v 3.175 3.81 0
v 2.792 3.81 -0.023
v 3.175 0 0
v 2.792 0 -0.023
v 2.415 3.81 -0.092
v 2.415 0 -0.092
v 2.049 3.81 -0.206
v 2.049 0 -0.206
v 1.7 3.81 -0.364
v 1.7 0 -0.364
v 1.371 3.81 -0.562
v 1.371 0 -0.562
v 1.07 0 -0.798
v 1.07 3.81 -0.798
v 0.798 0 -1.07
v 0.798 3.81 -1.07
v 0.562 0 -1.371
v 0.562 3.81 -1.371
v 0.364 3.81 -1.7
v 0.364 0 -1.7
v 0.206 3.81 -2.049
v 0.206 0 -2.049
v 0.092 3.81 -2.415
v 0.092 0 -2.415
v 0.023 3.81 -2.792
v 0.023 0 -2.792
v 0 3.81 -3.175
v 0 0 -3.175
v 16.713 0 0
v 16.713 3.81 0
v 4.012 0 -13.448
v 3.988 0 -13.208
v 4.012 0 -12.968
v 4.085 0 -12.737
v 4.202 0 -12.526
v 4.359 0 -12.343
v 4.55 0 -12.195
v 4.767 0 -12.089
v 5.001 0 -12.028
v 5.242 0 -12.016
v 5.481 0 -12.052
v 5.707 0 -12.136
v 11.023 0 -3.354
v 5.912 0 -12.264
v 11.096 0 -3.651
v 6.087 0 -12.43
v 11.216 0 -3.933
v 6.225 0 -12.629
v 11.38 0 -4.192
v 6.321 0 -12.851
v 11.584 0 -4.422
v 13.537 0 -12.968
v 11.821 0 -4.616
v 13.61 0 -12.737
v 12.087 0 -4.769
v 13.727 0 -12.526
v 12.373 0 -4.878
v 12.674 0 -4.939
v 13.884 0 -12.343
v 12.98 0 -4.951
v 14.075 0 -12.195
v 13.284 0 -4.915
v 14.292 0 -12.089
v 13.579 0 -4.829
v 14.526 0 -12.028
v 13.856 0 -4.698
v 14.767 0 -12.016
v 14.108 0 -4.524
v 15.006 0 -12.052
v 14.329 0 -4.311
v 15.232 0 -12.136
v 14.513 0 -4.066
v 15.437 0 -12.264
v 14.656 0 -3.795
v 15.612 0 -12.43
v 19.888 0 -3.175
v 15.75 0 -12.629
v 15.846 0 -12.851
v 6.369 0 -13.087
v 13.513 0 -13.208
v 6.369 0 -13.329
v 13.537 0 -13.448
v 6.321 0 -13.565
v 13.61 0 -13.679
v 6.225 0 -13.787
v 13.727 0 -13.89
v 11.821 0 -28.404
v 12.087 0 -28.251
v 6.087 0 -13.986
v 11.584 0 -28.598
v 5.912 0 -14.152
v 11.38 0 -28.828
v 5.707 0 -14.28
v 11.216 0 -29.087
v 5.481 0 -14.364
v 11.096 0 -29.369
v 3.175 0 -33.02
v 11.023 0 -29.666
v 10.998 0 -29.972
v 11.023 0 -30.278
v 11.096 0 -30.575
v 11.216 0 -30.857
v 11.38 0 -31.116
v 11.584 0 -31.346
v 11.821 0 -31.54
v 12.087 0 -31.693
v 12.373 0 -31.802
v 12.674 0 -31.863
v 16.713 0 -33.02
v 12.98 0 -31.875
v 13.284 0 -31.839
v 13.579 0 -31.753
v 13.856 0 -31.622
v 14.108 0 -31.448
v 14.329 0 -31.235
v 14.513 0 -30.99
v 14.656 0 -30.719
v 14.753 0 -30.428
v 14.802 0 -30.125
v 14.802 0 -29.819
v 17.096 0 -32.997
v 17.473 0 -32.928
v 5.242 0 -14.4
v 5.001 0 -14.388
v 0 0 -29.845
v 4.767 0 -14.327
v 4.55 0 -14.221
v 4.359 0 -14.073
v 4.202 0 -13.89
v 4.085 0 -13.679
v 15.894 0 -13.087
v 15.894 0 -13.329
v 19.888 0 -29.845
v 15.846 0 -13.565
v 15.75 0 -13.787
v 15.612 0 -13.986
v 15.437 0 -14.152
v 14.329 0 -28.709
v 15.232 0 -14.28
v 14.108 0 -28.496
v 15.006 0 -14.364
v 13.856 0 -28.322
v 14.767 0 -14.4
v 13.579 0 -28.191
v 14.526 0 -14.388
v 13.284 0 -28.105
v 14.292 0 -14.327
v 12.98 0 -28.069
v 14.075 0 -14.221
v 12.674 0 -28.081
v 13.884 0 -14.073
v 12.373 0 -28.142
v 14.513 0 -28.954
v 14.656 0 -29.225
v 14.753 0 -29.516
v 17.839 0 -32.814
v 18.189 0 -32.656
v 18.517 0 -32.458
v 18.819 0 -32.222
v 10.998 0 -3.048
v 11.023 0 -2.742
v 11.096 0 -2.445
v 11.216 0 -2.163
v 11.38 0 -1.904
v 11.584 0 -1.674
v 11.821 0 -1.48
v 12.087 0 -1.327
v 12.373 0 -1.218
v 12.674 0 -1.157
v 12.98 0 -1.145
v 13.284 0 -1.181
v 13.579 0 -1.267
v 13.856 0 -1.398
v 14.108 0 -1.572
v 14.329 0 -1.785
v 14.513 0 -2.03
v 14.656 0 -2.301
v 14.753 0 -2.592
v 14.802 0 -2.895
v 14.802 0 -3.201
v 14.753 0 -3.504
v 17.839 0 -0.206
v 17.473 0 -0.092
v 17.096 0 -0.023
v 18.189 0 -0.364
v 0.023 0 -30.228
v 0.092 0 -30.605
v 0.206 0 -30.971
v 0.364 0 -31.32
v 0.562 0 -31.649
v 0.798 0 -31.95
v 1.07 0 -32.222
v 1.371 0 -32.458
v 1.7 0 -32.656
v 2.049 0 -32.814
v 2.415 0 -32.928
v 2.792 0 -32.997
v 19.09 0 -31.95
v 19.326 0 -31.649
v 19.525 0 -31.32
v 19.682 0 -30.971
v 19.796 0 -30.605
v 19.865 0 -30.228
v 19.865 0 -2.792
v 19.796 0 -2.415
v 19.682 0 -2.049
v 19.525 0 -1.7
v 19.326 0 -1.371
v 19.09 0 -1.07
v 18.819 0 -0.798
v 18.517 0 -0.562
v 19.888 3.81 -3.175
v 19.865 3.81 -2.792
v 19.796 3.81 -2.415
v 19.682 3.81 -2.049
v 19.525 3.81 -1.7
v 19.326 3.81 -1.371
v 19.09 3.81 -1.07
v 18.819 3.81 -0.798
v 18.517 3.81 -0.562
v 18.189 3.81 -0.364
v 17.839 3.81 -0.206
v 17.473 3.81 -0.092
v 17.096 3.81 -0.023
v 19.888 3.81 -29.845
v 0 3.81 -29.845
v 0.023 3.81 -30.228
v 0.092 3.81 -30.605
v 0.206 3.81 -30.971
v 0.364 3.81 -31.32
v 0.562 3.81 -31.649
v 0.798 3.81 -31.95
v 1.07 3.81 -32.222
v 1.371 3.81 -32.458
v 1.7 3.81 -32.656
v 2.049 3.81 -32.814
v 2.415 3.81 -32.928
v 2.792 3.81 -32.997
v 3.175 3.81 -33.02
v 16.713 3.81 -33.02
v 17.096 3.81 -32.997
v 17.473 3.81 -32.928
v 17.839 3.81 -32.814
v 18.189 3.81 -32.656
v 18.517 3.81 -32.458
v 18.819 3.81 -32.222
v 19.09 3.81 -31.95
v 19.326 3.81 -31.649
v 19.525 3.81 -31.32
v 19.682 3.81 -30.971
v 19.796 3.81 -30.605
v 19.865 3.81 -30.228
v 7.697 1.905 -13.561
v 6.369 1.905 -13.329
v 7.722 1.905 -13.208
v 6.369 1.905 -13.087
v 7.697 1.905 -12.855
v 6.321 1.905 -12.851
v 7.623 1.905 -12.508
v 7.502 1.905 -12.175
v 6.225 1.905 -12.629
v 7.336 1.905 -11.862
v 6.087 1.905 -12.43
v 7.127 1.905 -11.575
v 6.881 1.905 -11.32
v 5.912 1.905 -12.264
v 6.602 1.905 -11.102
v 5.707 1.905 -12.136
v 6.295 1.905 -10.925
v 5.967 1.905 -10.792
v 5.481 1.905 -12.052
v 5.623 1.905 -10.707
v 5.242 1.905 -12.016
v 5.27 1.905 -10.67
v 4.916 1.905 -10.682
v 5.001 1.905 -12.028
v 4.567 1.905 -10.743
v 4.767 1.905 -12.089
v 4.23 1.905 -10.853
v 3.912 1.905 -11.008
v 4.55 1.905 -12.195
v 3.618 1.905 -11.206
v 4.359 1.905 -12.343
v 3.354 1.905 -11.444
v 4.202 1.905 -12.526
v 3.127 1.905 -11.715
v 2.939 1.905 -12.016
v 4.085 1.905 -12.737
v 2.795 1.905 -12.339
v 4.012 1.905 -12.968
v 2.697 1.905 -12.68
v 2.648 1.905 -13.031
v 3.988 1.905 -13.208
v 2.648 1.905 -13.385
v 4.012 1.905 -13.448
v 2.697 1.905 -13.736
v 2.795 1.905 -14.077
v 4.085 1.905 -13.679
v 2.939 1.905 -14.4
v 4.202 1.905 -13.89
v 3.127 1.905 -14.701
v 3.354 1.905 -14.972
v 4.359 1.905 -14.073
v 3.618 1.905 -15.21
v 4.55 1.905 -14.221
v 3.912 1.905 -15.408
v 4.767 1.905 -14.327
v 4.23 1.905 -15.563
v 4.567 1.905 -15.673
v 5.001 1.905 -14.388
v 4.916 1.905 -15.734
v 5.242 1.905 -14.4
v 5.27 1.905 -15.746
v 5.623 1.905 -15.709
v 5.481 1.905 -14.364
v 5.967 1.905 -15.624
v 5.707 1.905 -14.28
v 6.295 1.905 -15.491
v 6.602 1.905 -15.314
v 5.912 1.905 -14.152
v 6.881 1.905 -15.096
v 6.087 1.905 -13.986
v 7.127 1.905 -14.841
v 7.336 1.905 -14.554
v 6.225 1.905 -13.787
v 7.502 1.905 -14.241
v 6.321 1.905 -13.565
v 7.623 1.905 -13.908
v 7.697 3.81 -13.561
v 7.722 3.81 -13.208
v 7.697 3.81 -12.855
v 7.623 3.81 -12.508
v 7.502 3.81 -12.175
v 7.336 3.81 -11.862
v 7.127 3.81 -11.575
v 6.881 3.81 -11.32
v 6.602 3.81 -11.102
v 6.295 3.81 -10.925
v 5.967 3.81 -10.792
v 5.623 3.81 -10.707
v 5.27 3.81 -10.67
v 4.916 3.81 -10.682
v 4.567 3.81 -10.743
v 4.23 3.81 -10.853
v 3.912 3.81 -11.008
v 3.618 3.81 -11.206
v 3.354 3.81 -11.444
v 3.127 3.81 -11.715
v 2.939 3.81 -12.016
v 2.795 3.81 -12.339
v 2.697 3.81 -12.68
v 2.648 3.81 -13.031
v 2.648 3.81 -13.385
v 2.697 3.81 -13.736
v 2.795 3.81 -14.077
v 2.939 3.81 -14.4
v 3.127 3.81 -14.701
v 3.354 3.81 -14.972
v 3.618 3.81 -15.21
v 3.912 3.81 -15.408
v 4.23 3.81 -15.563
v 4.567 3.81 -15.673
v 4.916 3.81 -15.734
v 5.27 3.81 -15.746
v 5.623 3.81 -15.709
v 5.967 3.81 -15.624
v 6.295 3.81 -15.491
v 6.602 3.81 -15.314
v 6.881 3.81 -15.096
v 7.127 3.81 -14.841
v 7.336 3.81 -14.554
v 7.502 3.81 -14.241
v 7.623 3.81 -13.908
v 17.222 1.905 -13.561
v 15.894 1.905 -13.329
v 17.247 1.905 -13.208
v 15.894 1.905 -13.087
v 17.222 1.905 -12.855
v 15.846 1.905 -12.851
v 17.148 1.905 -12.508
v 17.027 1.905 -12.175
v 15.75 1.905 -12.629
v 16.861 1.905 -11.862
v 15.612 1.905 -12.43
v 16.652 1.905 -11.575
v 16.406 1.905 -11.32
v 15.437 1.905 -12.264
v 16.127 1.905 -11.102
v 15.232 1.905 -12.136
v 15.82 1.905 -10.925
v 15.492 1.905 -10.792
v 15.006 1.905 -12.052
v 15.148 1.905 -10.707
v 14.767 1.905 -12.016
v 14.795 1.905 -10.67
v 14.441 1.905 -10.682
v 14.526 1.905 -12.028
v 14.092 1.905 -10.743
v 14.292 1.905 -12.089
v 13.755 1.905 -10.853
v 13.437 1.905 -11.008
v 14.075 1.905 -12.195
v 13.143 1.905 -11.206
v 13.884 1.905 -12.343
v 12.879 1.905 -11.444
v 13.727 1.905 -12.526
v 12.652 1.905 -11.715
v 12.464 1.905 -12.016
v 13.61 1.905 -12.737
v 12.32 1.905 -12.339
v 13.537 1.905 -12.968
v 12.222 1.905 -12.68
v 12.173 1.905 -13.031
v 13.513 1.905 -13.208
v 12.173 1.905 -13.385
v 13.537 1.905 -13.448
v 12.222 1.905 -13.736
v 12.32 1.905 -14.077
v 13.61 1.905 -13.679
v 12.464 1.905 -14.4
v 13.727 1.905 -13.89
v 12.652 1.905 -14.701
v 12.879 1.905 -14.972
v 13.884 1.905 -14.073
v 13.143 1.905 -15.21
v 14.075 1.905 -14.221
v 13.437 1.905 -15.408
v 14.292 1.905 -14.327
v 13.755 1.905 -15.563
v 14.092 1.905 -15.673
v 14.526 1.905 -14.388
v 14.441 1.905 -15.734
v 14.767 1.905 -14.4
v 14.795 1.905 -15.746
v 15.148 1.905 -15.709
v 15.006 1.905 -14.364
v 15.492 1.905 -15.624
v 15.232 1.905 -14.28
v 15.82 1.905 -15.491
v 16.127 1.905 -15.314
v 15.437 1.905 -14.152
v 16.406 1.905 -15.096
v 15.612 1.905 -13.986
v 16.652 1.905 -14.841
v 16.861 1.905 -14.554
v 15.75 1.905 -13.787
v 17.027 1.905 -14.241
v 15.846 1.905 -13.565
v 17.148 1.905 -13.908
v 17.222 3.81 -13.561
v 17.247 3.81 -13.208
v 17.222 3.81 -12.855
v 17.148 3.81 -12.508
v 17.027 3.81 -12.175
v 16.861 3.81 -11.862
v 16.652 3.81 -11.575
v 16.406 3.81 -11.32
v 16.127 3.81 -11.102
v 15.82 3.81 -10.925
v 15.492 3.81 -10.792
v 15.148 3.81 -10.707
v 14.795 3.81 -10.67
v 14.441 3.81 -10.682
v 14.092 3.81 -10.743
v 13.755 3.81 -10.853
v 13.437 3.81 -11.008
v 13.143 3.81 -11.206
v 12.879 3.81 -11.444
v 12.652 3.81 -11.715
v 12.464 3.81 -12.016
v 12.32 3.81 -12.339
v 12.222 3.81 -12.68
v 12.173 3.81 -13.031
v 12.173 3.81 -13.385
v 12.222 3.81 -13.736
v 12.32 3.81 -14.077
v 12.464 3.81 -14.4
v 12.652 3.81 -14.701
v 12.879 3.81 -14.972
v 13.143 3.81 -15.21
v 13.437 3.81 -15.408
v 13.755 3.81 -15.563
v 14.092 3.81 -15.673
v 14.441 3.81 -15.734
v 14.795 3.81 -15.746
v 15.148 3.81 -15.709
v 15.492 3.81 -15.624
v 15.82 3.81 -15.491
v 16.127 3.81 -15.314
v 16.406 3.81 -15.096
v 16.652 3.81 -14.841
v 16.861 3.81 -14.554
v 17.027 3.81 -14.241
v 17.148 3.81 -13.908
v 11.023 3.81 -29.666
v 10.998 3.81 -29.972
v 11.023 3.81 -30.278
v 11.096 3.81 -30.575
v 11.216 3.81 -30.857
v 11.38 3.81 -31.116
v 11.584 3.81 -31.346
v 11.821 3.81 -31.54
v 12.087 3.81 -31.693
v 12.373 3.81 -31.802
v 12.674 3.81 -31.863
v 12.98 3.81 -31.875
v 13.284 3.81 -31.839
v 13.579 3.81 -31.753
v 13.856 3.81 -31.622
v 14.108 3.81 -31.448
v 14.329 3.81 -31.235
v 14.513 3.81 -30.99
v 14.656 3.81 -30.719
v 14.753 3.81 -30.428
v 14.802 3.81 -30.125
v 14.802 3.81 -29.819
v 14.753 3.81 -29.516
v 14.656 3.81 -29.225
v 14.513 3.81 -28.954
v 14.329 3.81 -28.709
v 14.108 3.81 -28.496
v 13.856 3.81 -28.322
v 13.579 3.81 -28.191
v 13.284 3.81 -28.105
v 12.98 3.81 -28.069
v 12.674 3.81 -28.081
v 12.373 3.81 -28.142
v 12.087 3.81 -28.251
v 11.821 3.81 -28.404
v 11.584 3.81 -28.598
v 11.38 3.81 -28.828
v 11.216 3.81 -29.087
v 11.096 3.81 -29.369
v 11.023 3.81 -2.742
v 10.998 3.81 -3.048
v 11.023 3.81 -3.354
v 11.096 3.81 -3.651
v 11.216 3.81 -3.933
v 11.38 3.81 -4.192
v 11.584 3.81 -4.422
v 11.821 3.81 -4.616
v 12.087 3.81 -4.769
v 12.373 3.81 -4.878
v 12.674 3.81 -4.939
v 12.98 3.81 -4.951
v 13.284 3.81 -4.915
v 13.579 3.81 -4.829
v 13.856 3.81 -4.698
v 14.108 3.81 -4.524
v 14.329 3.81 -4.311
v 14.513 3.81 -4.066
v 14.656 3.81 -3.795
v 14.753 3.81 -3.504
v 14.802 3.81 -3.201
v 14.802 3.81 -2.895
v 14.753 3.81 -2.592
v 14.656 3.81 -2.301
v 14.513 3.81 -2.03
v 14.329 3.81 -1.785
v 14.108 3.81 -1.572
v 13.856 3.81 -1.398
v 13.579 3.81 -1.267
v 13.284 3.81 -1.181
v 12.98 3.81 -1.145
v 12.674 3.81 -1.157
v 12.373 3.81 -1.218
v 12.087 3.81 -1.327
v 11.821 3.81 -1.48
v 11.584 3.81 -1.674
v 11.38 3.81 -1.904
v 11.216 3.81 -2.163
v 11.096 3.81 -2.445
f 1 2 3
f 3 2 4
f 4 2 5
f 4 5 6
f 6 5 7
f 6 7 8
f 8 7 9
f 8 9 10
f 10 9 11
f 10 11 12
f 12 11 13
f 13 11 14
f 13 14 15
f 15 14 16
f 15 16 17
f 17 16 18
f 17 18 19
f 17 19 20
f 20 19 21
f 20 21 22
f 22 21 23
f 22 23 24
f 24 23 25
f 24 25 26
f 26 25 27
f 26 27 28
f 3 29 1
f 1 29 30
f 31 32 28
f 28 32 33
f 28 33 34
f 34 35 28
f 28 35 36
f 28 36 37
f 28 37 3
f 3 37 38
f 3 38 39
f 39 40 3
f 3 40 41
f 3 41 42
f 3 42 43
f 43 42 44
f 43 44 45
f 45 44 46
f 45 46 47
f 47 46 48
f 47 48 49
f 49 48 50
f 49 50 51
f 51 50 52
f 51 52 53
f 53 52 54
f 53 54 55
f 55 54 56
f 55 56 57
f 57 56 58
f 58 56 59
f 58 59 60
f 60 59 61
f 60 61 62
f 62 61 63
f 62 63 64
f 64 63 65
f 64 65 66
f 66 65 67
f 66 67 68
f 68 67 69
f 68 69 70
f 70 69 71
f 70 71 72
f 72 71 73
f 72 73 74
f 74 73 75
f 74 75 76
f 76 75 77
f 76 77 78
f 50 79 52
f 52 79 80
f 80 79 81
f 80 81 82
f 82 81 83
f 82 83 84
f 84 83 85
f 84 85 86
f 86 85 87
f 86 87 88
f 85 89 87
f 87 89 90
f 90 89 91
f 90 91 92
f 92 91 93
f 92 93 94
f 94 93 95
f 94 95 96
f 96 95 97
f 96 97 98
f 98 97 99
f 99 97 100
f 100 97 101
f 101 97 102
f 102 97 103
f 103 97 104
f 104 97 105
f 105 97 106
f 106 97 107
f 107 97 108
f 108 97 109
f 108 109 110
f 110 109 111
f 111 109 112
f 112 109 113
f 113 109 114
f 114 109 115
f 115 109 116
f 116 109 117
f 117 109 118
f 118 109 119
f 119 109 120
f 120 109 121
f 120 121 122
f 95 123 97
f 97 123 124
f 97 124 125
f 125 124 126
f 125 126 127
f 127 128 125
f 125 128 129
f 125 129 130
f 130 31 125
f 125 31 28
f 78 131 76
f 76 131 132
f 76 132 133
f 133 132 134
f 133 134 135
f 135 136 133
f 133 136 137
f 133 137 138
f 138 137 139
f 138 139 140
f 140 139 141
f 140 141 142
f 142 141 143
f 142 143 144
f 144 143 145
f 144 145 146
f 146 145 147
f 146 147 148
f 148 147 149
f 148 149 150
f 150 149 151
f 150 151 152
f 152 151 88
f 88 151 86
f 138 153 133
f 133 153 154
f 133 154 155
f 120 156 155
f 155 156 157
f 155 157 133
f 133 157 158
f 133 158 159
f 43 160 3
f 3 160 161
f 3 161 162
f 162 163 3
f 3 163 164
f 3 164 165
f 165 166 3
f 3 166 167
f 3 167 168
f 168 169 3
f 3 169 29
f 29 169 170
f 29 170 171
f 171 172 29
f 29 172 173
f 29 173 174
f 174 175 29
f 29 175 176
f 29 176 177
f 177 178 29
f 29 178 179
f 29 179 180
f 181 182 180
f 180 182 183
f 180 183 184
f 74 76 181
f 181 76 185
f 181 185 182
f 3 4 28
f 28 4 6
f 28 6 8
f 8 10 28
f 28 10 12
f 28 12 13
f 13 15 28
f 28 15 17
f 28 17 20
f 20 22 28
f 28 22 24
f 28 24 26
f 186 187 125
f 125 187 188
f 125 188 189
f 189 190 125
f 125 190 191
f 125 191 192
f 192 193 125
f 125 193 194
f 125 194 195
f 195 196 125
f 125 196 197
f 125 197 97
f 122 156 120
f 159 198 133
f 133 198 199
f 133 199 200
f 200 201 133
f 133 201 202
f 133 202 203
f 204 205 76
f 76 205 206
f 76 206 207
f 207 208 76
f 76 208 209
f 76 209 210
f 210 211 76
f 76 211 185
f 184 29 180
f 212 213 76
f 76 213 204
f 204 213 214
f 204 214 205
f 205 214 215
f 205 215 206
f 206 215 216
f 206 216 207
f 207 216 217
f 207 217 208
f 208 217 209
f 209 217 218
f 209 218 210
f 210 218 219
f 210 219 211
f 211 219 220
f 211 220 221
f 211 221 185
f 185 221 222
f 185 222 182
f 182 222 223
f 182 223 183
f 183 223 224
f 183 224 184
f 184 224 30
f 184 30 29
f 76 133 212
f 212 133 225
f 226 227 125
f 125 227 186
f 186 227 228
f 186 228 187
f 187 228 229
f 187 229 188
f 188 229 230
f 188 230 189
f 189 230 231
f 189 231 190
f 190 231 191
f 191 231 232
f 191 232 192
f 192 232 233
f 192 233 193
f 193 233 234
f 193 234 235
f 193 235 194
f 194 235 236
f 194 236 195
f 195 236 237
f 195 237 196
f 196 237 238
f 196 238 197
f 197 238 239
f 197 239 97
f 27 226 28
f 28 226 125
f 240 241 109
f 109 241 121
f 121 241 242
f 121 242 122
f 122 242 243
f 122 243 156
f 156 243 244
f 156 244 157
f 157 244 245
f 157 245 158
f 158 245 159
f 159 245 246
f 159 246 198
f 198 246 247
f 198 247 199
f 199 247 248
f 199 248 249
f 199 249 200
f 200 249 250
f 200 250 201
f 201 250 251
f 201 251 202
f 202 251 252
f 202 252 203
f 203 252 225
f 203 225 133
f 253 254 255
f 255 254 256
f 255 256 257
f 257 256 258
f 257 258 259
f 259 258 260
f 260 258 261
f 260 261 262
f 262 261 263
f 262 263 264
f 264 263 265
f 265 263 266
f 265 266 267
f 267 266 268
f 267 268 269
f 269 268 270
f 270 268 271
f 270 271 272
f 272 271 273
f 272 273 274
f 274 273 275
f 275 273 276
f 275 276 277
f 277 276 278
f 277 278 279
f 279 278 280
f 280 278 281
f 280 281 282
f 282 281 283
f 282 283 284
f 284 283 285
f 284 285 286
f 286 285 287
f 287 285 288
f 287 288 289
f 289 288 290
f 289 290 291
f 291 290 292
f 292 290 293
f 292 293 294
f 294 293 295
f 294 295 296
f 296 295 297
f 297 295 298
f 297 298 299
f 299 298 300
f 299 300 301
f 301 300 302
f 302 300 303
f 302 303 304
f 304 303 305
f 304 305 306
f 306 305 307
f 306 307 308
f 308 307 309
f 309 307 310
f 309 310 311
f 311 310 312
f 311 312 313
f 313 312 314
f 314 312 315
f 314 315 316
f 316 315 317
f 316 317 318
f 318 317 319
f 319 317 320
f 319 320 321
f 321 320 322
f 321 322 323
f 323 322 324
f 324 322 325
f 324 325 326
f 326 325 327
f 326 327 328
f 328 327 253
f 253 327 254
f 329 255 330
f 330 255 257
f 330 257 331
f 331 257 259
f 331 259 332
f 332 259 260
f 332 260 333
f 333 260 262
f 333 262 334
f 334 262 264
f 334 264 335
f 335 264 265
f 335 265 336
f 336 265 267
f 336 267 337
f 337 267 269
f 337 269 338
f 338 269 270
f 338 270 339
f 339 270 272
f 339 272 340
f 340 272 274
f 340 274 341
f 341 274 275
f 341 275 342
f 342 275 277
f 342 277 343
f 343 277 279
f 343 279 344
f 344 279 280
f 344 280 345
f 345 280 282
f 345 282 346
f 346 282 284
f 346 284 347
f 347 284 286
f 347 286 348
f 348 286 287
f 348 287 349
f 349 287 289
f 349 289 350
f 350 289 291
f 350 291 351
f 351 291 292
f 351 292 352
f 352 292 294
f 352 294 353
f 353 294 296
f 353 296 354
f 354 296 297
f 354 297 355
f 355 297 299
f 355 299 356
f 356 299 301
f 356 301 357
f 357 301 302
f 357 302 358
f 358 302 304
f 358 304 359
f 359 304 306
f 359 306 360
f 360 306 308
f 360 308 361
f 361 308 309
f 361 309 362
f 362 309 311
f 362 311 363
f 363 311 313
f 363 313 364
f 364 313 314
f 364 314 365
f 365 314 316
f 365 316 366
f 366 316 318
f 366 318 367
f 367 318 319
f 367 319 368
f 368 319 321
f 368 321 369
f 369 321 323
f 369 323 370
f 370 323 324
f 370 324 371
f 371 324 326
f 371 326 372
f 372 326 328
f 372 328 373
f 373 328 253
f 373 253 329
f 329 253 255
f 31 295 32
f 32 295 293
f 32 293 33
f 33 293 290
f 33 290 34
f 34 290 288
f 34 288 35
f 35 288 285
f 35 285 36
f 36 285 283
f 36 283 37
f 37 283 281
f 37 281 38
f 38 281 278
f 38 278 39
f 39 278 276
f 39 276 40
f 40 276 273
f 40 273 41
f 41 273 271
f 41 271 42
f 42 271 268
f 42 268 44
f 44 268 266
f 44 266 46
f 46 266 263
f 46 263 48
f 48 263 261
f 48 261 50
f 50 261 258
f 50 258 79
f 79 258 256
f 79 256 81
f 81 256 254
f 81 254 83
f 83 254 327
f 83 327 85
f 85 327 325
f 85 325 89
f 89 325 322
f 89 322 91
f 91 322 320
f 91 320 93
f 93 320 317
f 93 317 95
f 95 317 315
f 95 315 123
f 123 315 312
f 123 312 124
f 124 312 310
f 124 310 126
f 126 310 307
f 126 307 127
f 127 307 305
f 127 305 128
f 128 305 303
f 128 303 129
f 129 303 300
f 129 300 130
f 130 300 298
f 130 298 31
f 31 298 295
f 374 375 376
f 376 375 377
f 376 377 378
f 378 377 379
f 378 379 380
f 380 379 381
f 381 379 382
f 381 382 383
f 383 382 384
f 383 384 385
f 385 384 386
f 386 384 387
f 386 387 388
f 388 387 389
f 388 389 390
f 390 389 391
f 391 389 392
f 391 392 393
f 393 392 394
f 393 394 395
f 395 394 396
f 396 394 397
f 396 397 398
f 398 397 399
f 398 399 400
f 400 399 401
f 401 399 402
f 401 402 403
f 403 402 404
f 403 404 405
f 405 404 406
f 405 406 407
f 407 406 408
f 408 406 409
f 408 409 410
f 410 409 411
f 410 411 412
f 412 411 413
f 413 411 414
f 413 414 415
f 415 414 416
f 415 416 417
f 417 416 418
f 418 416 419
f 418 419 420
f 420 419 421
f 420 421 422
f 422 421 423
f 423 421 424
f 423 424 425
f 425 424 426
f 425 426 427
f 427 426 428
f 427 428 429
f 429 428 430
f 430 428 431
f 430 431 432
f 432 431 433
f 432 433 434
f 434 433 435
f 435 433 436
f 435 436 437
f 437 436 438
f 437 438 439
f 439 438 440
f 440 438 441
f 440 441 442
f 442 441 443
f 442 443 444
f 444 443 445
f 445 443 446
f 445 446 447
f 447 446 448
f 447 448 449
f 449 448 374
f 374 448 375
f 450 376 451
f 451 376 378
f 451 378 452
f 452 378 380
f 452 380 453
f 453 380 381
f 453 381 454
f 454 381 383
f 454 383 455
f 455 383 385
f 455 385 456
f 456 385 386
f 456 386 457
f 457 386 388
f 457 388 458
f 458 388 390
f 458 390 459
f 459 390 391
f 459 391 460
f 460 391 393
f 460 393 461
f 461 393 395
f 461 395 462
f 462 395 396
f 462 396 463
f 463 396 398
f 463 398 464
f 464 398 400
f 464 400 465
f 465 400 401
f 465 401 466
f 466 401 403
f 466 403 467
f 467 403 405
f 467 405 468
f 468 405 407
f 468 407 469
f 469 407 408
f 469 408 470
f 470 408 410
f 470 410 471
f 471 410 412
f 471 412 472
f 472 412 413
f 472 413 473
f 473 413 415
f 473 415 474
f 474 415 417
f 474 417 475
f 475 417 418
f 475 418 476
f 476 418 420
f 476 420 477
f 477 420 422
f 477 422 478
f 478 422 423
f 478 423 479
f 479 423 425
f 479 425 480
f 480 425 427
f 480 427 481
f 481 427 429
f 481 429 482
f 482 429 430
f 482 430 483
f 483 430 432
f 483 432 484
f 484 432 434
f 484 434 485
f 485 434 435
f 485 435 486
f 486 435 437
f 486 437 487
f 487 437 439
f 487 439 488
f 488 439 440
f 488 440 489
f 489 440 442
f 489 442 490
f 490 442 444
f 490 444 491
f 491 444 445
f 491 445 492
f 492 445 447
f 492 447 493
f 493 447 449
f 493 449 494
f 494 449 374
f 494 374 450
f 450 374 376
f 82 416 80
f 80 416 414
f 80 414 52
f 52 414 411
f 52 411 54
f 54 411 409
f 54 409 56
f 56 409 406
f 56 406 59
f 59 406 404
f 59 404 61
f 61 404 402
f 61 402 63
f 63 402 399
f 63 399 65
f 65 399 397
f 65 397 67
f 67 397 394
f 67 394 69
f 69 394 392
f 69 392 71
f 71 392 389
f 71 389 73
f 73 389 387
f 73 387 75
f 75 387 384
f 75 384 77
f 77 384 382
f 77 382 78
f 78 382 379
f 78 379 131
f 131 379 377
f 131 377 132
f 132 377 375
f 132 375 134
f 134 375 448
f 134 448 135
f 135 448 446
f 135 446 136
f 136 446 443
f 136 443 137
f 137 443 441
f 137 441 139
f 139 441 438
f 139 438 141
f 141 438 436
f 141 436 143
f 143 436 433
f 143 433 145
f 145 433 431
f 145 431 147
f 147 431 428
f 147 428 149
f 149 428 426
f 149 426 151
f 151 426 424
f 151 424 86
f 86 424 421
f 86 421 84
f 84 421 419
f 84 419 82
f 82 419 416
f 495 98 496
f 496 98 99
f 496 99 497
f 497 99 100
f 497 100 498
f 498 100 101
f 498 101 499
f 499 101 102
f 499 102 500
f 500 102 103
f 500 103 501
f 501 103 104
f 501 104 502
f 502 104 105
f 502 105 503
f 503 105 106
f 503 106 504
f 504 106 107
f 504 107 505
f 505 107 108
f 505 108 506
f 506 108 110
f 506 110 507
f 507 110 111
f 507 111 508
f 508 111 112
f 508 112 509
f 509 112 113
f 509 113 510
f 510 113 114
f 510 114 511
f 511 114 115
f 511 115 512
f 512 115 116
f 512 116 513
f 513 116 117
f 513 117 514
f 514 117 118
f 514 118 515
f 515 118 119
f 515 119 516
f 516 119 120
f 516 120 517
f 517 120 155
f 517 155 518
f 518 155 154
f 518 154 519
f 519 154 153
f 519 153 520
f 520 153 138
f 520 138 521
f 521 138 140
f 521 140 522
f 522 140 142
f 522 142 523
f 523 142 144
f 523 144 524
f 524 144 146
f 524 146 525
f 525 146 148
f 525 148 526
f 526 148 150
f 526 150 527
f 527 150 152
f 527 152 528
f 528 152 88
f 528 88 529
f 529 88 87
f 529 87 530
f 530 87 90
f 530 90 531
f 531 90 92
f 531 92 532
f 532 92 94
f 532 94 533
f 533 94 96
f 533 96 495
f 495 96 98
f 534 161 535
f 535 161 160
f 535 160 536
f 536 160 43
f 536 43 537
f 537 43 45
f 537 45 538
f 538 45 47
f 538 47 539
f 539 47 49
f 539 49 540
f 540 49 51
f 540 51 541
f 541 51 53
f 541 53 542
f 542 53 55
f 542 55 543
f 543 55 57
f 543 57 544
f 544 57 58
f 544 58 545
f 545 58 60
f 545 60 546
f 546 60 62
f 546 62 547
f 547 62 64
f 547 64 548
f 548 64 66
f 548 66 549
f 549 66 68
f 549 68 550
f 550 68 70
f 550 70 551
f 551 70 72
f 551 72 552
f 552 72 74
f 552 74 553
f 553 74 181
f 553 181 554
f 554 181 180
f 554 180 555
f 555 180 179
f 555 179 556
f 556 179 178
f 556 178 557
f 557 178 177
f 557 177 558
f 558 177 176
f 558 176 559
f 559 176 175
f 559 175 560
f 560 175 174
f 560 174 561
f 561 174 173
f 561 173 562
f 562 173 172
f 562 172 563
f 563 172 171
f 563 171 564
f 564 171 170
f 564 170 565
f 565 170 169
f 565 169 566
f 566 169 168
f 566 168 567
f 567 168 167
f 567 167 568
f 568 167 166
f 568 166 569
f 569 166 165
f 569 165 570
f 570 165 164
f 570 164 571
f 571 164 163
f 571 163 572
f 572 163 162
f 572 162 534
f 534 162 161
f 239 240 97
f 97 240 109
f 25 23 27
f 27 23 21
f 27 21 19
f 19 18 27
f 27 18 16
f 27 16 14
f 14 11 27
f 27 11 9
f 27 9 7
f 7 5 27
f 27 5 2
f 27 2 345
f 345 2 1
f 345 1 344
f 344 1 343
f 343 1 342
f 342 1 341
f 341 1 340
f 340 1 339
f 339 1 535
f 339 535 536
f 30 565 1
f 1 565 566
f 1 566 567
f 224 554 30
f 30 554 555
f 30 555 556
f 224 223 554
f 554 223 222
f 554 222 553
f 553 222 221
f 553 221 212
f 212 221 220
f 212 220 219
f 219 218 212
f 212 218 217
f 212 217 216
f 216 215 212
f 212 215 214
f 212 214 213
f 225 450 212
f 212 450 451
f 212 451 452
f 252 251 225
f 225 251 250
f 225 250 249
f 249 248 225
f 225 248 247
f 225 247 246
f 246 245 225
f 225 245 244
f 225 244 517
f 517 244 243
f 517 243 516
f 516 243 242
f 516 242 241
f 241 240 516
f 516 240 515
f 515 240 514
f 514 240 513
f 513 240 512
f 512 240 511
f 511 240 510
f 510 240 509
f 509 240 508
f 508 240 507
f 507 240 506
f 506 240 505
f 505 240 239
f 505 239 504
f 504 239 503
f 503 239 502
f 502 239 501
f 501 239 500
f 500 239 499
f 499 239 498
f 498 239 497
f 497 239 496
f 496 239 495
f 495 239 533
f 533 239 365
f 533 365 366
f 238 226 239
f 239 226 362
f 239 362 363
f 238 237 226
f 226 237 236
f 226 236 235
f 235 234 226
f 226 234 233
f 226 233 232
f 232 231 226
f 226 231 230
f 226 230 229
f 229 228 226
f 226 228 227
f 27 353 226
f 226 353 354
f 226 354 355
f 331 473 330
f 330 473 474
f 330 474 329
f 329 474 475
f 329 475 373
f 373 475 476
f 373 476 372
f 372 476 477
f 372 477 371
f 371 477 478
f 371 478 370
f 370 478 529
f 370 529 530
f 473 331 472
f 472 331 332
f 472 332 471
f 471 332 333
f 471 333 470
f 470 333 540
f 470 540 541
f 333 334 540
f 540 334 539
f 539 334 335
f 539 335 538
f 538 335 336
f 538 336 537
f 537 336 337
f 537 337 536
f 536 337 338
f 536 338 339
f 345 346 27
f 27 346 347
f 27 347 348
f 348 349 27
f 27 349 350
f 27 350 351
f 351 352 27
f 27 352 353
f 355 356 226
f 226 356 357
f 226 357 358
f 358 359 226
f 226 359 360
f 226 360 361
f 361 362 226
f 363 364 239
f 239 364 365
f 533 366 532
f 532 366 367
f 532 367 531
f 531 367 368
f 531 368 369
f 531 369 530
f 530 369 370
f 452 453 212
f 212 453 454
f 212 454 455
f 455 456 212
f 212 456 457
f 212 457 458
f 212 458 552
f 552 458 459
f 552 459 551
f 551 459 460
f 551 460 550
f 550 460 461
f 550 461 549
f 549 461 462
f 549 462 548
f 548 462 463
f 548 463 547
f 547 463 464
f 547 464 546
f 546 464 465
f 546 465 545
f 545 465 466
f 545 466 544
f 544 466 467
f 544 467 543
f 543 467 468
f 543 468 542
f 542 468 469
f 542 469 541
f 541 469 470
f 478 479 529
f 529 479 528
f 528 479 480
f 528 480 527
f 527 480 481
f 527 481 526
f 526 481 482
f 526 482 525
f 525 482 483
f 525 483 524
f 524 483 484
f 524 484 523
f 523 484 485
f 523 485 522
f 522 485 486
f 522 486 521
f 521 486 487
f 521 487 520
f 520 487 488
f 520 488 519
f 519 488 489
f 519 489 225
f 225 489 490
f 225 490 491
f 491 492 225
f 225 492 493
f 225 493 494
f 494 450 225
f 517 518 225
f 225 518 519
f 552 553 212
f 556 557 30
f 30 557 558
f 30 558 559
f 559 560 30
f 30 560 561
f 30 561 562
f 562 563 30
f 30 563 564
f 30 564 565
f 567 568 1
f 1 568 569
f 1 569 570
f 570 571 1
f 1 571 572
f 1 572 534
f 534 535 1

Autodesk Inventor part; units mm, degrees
ref_plane "YZ Plane" through (0, 0, 0) normal (1, 0, 0) x (0, 1, 0)
ref_plane "XZ Plane" through (0, 0, 0) normal (0, 1, 0) x (-1, 0, 0)
ref_plane "XY Plane" through (0, 0, 0) normal (0, 0, 1) x (1, 0, 0)
sketch "Sketch1" plane through (0, 0, 0) normal (0, 1, 0) x (-1, 0, 0)
  line L0 (0, 0) -> (-19.8882, 0)
  line L1 (-19.8882, 0) -> (-19.8882, -33.02)
  line L2 (-19.8882, -33.02) -> (0, -33.02)
  line L3 (0, -33.02) -> (0, 0)
  circle A0 centre (-12.9032, -3.048) radius 1.905
  circle A1 centre (-12.9032, -29.972) radius 1.905
  dimension "d0" = 19.8882
  dimension "d1" = 33.02
  dimension "d2" = 3.81
  dimension "d3" = 3.048
  dimension "d4" = 6.985
  dimension "d5" = 3.81
  dimension "d6" = 3.048
extrude "Extrusion1" add sketch "Sketch1" along normal blind 3.81
sketch "Sketch2" plane through (0, 3.81, 0) normal (0, 1, 0) x (1, 0, 0)
  circle A0 centre (5.1816, 13.208) radius 1.1938
  circle A1 centre (14.7066, 13.208) radius 1.1938
  circle A2 centre (12.9032, 3.048) radius 1.905 projected
  point P0 (0, 0)
  dimension "d9" = 2.3876
  dimension "d10" = 2.3876
  dimension "d11" = 7.7216
  dimension "d12" = 1.8034
  dimension "d13" = 10.16
  dimension "d14" = 10.16
hole "Hole1" at (5.1816, 3.81, -13.208) at (14.7066, 3.81, -13.208) direction (0, -1, 0) diameter 2.3876 end through all counterbore diameter 5.08 counterbore depth 1.905
fillet "Fillet1" radius 3.175 4 edges at (19.8882, 1.905, -33.02) (0, 1.905, -33.02) (19.8882, 1.905, 0) (0, 1.905, 0)
properties part number "SwitchHolderTNutLeft"
